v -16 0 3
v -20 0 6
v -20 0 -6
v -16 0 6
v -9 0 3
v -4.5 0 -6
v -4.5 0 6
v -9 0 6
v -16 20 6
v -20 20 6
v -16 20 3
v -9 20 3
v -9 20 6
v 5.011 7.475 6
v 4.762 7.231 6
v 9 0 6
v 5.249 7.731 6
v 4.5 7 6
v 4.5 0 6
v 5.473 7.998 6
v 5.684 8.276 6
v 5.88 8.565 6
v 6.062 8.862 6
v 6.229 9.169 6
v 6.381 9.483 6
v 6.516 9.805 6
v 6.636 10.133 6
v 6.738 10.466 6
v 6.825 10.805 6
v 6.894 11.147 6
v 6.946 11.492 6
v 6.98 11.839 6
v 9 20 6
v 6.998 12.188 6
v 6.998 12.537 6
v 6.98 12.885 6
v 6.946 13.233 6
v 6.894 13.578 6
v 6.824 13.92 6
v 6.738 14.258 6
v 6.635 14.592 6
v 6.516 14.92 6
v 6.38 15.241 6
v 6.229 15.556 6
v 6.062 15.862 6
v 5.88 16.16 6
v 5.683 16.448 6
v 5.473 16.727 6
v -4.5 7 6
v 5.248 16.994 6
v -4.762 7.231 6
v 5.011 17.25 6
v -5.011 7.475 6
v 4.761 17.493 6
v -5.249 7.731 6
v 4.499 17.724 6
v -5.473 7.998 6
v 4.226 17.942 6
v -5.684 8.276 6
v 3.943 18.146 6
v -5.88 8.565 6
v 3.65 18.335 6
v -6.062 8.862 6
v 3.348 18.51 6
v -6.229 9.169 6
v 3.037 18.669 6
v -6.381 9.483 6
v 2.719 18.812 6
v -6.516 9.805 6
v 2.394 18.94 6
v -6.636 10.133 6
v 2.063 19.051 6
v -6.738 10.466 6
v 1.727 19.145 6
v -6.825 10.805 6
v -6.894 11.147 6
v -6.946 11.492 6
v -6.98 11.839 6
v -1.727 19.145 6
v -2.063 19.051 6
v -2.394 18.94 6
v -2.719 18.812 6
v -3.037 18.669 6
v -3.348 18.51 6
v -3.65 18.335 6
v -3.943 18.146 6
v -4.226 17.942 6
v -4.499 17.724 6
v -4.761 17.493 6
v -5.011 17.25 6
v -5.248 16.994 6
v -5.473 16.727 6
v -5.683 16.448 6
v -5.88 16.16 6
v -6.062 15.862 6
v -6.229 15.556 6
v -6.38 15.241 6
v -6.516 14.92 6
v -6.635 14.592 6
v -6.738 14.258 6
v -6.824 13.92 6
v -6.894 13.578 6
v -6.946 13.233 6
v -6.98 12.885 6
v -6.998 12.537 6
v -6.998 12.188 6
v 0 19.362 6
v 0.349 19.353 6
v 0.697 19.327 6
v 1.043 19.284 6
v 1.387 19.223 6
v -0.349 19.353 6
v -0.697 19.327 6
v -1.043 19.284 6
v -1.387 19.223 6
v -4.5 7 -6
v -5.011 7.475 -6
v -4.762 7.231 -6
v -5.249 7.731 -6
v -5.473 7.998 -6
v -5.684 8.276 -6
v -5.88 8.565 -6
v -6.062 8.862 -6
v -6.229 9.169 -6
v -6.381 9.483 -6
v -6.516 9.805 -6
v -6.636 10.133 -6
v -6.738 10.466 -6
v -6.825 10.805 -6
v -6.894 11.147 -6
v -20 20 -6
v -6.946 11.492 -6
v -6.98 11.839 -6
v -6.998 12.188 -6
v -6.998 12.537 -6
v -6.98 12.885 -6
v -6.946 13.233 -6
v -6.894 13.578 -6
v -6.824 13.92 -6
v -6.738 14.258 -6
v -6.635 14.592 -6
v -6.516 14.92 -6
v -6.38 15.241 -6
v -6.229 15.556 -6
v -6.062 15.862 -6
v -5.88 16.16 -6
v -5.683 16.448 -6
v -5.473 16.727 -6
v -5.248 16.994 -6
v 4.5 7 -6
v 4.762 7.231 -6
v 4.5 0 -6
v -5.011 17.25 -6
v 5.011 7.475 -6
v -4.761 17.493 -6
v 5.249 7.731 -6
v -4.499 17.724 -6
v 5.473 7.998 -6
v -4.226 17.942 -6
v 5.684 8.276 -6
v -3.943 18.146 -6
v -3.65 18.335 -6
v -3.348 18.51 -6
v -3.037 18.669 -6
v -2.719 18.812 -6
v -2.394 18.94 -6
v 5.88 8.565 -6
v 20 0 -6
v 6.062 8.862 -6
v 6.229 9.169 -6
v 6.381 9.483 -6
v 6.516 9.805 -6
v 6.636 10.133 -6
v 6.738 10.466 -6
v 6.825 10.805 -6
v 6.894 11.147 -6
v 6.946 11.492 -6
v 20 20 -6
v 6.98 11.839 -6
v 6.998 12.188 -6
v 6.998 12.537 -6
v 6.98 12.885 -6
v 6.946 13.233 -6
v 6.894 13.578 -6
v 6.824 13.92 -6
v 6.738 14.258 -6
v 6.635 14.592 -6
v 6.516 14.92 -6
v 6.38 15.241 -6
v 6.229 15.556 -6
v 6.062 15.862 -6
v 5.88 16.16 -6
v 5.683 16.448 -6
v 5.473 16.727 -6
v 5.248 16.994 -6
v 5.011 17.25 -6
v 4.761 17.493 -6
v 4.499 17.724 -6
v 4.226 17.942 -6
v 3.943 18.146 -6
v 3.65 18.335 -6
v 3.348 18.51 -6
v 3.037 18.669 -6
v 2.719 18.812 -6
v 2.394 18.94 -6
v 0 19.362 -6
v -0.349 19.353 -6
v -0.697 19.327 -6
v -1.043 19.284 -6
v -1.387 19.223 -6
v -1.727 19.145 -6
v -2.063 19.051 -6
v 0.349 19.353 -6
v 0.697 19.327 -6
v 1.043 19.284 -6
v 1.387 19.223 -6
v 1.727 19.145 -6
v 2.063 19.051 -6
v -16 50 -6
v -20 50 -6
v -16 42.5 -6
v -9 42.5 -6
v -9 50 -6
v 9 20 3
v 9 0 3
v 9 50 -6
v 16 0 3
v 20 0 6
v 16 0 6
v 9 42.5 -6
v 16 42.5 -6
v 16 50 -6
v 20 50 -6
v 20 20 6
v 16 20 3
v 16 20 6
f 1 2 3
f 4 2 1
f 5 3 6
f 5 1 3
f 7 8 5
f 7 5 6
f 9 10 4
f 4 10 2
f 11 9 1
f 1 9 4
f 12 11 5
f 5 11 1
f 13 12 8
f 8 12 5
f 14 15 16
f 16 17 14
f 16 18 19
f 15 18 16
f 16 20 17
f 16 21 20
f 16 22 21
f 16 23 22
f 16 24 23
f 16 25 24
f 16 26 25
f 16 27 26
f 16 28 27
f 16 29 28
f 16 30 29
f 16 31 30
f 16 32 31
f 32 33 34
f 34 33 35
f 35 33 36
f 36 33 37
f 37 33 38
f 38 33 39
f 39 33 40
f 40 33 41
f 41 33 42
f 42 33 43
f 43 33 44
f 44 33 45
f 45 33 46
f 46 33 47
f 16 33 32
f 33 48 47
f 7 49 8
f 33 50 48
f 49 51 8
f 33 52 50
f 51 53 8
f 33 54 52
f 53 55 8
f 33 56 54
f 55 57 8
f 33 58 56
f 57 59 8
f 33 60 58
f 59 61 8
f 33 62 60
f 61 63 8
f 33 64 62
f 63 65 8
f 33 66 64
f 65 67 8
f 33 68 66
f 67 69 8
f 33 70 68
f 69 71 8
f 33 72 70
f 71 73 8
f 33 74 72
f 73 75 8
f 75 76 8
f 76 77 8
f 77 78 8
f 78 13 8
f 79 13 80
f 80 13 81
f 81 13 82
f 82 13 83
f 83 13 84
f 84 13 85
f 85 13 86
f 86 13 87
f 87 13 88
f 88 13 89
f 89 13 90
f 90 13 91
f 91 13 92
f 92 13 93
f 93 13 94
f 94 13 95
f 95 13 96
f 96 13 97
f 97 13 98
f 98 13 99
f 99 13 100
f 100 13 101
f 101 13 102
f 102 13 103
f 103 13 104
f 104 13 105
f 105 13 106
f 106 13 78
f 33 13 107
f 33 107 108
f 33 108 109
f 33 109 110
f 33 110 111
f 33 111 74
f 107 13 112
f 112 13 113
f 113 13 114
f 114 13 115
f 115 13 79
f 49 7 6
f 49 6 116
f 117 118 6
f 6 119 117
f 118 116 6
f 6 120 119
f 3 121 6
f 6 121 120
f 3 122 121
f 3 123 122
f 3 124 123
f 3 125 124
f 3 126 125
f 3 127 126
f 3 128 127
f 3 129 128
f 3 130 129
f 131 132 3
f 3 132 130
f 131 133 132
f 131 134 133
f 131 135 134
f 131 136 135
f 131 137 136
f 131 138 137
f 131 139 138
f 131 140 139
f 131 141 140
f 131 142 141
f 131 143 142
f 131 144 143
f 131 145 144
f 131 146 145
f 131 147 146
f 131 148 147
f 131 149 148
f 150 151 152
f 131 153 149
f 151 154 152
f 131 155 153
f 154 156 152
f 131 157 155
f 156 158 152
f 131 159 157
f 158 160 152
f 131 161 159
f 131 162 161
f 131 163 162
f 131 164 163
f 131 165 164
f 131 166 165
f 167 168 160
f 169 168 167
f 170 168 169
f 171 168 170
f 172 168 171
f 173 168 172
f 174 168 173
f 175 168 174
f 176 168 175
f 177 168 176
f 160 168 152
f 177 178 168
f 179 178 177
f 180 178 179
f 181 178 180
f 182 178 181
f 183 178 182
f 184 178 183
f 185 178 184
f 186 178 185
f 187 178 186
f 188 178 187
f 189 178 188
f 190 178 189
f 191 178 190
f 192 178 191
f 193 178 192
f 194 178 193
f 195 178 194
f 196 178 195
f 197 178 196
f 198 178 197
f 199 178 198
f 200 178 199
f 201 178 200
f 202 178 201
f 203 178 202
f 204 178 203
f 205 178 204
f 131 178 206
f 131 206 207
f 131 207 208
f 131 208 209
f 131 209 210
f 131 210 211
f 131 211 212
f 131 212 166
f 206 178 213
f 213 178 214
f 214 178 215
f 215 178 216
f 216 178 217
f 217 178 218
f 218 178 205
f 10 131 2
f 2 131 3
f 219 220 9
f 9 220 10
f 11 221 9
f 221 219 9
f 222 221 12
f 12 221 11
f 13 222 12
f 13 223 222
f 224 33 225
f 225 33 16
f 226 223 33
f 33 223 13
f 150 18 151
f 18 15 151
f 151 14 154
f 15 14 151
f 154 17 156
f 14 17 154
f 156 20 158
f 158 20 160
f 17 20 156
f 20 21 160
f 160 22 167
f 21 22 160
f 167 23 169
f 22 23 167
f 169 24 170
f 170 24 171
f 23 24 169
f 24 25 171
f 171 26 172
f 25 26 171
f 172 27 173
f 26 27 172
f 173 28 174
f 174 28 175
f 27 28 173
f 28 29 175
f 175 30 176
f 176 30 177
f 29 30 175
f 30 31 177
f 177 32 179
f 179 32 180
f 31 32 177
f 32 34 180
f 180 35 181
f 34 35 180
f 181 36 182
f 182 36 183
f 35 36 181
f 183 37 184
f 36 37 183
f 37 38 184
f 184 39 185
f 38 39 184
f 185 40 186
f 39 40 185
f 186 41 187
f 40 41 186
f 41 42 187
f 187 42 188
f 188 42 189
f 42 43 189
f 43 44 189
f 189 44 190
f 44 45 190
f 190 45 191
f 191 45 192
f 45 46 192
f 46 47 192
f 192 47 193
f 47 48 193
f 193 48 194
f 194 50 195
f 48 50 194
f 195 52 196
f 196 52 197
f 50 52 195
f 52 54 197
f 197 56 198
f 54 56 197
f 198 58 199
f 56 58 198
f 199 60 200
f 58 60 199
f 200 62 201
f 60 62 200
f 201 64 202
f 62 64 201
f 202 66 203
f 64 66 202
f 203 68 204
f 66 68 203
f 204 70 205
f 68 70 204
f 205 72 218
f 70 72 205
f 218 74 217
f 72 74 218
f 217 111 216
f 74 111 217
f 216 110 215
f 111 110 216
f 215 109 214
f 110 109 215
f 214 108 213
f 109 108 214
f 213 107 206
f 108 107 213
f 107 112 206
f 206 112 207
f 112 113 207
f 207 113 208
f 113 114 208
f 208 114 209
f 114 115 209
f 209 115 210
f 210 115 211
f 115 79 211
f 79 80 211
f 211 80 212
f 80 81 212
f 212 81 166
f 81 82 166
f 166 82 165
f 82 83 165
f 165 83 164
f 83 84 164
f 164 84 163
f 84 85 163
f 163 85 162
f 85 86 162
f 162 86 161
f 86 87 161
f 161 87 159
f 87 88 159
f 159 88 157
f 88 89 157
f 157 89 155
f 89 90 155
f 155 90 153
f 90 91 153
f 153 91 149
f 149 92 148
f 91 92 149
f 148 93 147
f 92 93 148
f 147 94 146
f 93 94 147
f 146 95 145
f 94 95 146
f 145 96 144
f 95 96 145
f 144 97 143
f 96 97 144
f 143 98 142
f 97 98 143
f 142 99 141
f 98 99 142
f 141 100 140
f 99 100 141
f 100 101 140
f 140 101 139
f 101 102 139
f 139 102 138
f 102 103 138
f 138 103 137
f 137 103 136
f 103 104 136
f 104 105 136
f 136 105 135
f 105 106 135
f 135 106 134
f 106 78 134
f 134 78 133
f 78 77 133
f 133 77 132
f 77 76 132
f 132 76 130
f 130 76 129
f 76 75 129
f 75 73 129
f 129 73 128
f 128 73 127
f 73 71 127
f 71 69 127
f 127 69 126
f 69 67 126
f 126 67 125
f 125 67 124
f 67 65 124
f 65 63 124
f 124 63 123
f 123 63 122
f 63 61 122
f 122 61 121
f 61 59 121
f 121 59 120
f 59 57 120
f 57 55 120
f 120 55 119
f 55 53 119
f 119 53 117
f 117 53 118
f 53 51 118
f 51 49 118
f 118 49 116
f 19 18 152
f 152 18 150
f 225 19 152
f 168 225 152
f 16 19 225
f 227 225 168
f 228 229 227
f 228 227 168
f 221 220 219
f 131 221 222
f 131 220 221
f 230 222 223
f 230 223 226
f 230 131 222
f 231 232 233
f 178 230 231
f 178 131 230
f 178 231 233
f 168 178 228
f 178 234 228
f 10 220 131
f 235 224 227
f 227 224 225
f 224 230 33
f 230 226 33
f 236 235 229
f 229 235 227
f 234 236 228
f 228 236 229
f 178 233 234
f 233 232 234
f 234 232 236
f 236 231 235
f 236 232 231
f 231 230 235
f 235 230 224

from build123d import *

# Parameters (mm, degrees)
SKETCH002_W          = 40
SKETCH002_H          = 12
POCKET_DEPTH         = 50.001
POCKET001_DEPTH      = 12.001
POCKET001_DEPTH_BACK = 0.001


with BuildPart() as part:
    # AdditivePipe: sweep along a path in Sketch
    with BuildLine(Plane.YZ) as additivepipe_path:
        Line((0, 0), (20, 0))
        Line((20, 0), (50, -12))
    # Sketch001 → AdditivePipe (sweep)
    with BuildSketch(Plane.XZ):
        Polygon((-20, 6), (-20, -6), (20, -6), (20, 6), (16, 6), (16, 3), (9, 3), (9, 6), (-9, 6), (-9, 3), (-16, 3), (-16, 6), align=None)
    sweep(path=additivepipe_path.line)

    # Sketch002 → Pocket (cut, through all)
    with BuildSketch(Plane.XZ):
        with Locations((0, -12)):
            Rectangle(SKETCH002_W, SKETCH002_H)
    extrude(amount=-POCKET_DEPTH, mode=Mode.SUBTRACT)

    # Sketch003 (on Face9 of Pocket) → Pocket001 (cut, two sides)
    with BuildSketch(Plane(origin=(0, 0, 6), x_dir=(-1, 0, 0), z_dir=(0, 0, 1))) as pocket001_sk:
        with BuildLine():
            Line((-4.5, 0), (4.5, 0))
            Line((4.5, 0), (4.5, -7))
            ThreePointArc((-4.5, -7), (0, -19.361903), (4.5, -7))
            Line((-4.5, 0), (-4.5, -7))
        make_face()
    extrude(amount=-POCKET001_DEPTH, mode=Mode.SUBTRACT)
    extrude(pocket001_sk.sketch, amount=POCKET001_DEPTH_BACK, mode=Mode.SUBTRACT)


solid = part.part
